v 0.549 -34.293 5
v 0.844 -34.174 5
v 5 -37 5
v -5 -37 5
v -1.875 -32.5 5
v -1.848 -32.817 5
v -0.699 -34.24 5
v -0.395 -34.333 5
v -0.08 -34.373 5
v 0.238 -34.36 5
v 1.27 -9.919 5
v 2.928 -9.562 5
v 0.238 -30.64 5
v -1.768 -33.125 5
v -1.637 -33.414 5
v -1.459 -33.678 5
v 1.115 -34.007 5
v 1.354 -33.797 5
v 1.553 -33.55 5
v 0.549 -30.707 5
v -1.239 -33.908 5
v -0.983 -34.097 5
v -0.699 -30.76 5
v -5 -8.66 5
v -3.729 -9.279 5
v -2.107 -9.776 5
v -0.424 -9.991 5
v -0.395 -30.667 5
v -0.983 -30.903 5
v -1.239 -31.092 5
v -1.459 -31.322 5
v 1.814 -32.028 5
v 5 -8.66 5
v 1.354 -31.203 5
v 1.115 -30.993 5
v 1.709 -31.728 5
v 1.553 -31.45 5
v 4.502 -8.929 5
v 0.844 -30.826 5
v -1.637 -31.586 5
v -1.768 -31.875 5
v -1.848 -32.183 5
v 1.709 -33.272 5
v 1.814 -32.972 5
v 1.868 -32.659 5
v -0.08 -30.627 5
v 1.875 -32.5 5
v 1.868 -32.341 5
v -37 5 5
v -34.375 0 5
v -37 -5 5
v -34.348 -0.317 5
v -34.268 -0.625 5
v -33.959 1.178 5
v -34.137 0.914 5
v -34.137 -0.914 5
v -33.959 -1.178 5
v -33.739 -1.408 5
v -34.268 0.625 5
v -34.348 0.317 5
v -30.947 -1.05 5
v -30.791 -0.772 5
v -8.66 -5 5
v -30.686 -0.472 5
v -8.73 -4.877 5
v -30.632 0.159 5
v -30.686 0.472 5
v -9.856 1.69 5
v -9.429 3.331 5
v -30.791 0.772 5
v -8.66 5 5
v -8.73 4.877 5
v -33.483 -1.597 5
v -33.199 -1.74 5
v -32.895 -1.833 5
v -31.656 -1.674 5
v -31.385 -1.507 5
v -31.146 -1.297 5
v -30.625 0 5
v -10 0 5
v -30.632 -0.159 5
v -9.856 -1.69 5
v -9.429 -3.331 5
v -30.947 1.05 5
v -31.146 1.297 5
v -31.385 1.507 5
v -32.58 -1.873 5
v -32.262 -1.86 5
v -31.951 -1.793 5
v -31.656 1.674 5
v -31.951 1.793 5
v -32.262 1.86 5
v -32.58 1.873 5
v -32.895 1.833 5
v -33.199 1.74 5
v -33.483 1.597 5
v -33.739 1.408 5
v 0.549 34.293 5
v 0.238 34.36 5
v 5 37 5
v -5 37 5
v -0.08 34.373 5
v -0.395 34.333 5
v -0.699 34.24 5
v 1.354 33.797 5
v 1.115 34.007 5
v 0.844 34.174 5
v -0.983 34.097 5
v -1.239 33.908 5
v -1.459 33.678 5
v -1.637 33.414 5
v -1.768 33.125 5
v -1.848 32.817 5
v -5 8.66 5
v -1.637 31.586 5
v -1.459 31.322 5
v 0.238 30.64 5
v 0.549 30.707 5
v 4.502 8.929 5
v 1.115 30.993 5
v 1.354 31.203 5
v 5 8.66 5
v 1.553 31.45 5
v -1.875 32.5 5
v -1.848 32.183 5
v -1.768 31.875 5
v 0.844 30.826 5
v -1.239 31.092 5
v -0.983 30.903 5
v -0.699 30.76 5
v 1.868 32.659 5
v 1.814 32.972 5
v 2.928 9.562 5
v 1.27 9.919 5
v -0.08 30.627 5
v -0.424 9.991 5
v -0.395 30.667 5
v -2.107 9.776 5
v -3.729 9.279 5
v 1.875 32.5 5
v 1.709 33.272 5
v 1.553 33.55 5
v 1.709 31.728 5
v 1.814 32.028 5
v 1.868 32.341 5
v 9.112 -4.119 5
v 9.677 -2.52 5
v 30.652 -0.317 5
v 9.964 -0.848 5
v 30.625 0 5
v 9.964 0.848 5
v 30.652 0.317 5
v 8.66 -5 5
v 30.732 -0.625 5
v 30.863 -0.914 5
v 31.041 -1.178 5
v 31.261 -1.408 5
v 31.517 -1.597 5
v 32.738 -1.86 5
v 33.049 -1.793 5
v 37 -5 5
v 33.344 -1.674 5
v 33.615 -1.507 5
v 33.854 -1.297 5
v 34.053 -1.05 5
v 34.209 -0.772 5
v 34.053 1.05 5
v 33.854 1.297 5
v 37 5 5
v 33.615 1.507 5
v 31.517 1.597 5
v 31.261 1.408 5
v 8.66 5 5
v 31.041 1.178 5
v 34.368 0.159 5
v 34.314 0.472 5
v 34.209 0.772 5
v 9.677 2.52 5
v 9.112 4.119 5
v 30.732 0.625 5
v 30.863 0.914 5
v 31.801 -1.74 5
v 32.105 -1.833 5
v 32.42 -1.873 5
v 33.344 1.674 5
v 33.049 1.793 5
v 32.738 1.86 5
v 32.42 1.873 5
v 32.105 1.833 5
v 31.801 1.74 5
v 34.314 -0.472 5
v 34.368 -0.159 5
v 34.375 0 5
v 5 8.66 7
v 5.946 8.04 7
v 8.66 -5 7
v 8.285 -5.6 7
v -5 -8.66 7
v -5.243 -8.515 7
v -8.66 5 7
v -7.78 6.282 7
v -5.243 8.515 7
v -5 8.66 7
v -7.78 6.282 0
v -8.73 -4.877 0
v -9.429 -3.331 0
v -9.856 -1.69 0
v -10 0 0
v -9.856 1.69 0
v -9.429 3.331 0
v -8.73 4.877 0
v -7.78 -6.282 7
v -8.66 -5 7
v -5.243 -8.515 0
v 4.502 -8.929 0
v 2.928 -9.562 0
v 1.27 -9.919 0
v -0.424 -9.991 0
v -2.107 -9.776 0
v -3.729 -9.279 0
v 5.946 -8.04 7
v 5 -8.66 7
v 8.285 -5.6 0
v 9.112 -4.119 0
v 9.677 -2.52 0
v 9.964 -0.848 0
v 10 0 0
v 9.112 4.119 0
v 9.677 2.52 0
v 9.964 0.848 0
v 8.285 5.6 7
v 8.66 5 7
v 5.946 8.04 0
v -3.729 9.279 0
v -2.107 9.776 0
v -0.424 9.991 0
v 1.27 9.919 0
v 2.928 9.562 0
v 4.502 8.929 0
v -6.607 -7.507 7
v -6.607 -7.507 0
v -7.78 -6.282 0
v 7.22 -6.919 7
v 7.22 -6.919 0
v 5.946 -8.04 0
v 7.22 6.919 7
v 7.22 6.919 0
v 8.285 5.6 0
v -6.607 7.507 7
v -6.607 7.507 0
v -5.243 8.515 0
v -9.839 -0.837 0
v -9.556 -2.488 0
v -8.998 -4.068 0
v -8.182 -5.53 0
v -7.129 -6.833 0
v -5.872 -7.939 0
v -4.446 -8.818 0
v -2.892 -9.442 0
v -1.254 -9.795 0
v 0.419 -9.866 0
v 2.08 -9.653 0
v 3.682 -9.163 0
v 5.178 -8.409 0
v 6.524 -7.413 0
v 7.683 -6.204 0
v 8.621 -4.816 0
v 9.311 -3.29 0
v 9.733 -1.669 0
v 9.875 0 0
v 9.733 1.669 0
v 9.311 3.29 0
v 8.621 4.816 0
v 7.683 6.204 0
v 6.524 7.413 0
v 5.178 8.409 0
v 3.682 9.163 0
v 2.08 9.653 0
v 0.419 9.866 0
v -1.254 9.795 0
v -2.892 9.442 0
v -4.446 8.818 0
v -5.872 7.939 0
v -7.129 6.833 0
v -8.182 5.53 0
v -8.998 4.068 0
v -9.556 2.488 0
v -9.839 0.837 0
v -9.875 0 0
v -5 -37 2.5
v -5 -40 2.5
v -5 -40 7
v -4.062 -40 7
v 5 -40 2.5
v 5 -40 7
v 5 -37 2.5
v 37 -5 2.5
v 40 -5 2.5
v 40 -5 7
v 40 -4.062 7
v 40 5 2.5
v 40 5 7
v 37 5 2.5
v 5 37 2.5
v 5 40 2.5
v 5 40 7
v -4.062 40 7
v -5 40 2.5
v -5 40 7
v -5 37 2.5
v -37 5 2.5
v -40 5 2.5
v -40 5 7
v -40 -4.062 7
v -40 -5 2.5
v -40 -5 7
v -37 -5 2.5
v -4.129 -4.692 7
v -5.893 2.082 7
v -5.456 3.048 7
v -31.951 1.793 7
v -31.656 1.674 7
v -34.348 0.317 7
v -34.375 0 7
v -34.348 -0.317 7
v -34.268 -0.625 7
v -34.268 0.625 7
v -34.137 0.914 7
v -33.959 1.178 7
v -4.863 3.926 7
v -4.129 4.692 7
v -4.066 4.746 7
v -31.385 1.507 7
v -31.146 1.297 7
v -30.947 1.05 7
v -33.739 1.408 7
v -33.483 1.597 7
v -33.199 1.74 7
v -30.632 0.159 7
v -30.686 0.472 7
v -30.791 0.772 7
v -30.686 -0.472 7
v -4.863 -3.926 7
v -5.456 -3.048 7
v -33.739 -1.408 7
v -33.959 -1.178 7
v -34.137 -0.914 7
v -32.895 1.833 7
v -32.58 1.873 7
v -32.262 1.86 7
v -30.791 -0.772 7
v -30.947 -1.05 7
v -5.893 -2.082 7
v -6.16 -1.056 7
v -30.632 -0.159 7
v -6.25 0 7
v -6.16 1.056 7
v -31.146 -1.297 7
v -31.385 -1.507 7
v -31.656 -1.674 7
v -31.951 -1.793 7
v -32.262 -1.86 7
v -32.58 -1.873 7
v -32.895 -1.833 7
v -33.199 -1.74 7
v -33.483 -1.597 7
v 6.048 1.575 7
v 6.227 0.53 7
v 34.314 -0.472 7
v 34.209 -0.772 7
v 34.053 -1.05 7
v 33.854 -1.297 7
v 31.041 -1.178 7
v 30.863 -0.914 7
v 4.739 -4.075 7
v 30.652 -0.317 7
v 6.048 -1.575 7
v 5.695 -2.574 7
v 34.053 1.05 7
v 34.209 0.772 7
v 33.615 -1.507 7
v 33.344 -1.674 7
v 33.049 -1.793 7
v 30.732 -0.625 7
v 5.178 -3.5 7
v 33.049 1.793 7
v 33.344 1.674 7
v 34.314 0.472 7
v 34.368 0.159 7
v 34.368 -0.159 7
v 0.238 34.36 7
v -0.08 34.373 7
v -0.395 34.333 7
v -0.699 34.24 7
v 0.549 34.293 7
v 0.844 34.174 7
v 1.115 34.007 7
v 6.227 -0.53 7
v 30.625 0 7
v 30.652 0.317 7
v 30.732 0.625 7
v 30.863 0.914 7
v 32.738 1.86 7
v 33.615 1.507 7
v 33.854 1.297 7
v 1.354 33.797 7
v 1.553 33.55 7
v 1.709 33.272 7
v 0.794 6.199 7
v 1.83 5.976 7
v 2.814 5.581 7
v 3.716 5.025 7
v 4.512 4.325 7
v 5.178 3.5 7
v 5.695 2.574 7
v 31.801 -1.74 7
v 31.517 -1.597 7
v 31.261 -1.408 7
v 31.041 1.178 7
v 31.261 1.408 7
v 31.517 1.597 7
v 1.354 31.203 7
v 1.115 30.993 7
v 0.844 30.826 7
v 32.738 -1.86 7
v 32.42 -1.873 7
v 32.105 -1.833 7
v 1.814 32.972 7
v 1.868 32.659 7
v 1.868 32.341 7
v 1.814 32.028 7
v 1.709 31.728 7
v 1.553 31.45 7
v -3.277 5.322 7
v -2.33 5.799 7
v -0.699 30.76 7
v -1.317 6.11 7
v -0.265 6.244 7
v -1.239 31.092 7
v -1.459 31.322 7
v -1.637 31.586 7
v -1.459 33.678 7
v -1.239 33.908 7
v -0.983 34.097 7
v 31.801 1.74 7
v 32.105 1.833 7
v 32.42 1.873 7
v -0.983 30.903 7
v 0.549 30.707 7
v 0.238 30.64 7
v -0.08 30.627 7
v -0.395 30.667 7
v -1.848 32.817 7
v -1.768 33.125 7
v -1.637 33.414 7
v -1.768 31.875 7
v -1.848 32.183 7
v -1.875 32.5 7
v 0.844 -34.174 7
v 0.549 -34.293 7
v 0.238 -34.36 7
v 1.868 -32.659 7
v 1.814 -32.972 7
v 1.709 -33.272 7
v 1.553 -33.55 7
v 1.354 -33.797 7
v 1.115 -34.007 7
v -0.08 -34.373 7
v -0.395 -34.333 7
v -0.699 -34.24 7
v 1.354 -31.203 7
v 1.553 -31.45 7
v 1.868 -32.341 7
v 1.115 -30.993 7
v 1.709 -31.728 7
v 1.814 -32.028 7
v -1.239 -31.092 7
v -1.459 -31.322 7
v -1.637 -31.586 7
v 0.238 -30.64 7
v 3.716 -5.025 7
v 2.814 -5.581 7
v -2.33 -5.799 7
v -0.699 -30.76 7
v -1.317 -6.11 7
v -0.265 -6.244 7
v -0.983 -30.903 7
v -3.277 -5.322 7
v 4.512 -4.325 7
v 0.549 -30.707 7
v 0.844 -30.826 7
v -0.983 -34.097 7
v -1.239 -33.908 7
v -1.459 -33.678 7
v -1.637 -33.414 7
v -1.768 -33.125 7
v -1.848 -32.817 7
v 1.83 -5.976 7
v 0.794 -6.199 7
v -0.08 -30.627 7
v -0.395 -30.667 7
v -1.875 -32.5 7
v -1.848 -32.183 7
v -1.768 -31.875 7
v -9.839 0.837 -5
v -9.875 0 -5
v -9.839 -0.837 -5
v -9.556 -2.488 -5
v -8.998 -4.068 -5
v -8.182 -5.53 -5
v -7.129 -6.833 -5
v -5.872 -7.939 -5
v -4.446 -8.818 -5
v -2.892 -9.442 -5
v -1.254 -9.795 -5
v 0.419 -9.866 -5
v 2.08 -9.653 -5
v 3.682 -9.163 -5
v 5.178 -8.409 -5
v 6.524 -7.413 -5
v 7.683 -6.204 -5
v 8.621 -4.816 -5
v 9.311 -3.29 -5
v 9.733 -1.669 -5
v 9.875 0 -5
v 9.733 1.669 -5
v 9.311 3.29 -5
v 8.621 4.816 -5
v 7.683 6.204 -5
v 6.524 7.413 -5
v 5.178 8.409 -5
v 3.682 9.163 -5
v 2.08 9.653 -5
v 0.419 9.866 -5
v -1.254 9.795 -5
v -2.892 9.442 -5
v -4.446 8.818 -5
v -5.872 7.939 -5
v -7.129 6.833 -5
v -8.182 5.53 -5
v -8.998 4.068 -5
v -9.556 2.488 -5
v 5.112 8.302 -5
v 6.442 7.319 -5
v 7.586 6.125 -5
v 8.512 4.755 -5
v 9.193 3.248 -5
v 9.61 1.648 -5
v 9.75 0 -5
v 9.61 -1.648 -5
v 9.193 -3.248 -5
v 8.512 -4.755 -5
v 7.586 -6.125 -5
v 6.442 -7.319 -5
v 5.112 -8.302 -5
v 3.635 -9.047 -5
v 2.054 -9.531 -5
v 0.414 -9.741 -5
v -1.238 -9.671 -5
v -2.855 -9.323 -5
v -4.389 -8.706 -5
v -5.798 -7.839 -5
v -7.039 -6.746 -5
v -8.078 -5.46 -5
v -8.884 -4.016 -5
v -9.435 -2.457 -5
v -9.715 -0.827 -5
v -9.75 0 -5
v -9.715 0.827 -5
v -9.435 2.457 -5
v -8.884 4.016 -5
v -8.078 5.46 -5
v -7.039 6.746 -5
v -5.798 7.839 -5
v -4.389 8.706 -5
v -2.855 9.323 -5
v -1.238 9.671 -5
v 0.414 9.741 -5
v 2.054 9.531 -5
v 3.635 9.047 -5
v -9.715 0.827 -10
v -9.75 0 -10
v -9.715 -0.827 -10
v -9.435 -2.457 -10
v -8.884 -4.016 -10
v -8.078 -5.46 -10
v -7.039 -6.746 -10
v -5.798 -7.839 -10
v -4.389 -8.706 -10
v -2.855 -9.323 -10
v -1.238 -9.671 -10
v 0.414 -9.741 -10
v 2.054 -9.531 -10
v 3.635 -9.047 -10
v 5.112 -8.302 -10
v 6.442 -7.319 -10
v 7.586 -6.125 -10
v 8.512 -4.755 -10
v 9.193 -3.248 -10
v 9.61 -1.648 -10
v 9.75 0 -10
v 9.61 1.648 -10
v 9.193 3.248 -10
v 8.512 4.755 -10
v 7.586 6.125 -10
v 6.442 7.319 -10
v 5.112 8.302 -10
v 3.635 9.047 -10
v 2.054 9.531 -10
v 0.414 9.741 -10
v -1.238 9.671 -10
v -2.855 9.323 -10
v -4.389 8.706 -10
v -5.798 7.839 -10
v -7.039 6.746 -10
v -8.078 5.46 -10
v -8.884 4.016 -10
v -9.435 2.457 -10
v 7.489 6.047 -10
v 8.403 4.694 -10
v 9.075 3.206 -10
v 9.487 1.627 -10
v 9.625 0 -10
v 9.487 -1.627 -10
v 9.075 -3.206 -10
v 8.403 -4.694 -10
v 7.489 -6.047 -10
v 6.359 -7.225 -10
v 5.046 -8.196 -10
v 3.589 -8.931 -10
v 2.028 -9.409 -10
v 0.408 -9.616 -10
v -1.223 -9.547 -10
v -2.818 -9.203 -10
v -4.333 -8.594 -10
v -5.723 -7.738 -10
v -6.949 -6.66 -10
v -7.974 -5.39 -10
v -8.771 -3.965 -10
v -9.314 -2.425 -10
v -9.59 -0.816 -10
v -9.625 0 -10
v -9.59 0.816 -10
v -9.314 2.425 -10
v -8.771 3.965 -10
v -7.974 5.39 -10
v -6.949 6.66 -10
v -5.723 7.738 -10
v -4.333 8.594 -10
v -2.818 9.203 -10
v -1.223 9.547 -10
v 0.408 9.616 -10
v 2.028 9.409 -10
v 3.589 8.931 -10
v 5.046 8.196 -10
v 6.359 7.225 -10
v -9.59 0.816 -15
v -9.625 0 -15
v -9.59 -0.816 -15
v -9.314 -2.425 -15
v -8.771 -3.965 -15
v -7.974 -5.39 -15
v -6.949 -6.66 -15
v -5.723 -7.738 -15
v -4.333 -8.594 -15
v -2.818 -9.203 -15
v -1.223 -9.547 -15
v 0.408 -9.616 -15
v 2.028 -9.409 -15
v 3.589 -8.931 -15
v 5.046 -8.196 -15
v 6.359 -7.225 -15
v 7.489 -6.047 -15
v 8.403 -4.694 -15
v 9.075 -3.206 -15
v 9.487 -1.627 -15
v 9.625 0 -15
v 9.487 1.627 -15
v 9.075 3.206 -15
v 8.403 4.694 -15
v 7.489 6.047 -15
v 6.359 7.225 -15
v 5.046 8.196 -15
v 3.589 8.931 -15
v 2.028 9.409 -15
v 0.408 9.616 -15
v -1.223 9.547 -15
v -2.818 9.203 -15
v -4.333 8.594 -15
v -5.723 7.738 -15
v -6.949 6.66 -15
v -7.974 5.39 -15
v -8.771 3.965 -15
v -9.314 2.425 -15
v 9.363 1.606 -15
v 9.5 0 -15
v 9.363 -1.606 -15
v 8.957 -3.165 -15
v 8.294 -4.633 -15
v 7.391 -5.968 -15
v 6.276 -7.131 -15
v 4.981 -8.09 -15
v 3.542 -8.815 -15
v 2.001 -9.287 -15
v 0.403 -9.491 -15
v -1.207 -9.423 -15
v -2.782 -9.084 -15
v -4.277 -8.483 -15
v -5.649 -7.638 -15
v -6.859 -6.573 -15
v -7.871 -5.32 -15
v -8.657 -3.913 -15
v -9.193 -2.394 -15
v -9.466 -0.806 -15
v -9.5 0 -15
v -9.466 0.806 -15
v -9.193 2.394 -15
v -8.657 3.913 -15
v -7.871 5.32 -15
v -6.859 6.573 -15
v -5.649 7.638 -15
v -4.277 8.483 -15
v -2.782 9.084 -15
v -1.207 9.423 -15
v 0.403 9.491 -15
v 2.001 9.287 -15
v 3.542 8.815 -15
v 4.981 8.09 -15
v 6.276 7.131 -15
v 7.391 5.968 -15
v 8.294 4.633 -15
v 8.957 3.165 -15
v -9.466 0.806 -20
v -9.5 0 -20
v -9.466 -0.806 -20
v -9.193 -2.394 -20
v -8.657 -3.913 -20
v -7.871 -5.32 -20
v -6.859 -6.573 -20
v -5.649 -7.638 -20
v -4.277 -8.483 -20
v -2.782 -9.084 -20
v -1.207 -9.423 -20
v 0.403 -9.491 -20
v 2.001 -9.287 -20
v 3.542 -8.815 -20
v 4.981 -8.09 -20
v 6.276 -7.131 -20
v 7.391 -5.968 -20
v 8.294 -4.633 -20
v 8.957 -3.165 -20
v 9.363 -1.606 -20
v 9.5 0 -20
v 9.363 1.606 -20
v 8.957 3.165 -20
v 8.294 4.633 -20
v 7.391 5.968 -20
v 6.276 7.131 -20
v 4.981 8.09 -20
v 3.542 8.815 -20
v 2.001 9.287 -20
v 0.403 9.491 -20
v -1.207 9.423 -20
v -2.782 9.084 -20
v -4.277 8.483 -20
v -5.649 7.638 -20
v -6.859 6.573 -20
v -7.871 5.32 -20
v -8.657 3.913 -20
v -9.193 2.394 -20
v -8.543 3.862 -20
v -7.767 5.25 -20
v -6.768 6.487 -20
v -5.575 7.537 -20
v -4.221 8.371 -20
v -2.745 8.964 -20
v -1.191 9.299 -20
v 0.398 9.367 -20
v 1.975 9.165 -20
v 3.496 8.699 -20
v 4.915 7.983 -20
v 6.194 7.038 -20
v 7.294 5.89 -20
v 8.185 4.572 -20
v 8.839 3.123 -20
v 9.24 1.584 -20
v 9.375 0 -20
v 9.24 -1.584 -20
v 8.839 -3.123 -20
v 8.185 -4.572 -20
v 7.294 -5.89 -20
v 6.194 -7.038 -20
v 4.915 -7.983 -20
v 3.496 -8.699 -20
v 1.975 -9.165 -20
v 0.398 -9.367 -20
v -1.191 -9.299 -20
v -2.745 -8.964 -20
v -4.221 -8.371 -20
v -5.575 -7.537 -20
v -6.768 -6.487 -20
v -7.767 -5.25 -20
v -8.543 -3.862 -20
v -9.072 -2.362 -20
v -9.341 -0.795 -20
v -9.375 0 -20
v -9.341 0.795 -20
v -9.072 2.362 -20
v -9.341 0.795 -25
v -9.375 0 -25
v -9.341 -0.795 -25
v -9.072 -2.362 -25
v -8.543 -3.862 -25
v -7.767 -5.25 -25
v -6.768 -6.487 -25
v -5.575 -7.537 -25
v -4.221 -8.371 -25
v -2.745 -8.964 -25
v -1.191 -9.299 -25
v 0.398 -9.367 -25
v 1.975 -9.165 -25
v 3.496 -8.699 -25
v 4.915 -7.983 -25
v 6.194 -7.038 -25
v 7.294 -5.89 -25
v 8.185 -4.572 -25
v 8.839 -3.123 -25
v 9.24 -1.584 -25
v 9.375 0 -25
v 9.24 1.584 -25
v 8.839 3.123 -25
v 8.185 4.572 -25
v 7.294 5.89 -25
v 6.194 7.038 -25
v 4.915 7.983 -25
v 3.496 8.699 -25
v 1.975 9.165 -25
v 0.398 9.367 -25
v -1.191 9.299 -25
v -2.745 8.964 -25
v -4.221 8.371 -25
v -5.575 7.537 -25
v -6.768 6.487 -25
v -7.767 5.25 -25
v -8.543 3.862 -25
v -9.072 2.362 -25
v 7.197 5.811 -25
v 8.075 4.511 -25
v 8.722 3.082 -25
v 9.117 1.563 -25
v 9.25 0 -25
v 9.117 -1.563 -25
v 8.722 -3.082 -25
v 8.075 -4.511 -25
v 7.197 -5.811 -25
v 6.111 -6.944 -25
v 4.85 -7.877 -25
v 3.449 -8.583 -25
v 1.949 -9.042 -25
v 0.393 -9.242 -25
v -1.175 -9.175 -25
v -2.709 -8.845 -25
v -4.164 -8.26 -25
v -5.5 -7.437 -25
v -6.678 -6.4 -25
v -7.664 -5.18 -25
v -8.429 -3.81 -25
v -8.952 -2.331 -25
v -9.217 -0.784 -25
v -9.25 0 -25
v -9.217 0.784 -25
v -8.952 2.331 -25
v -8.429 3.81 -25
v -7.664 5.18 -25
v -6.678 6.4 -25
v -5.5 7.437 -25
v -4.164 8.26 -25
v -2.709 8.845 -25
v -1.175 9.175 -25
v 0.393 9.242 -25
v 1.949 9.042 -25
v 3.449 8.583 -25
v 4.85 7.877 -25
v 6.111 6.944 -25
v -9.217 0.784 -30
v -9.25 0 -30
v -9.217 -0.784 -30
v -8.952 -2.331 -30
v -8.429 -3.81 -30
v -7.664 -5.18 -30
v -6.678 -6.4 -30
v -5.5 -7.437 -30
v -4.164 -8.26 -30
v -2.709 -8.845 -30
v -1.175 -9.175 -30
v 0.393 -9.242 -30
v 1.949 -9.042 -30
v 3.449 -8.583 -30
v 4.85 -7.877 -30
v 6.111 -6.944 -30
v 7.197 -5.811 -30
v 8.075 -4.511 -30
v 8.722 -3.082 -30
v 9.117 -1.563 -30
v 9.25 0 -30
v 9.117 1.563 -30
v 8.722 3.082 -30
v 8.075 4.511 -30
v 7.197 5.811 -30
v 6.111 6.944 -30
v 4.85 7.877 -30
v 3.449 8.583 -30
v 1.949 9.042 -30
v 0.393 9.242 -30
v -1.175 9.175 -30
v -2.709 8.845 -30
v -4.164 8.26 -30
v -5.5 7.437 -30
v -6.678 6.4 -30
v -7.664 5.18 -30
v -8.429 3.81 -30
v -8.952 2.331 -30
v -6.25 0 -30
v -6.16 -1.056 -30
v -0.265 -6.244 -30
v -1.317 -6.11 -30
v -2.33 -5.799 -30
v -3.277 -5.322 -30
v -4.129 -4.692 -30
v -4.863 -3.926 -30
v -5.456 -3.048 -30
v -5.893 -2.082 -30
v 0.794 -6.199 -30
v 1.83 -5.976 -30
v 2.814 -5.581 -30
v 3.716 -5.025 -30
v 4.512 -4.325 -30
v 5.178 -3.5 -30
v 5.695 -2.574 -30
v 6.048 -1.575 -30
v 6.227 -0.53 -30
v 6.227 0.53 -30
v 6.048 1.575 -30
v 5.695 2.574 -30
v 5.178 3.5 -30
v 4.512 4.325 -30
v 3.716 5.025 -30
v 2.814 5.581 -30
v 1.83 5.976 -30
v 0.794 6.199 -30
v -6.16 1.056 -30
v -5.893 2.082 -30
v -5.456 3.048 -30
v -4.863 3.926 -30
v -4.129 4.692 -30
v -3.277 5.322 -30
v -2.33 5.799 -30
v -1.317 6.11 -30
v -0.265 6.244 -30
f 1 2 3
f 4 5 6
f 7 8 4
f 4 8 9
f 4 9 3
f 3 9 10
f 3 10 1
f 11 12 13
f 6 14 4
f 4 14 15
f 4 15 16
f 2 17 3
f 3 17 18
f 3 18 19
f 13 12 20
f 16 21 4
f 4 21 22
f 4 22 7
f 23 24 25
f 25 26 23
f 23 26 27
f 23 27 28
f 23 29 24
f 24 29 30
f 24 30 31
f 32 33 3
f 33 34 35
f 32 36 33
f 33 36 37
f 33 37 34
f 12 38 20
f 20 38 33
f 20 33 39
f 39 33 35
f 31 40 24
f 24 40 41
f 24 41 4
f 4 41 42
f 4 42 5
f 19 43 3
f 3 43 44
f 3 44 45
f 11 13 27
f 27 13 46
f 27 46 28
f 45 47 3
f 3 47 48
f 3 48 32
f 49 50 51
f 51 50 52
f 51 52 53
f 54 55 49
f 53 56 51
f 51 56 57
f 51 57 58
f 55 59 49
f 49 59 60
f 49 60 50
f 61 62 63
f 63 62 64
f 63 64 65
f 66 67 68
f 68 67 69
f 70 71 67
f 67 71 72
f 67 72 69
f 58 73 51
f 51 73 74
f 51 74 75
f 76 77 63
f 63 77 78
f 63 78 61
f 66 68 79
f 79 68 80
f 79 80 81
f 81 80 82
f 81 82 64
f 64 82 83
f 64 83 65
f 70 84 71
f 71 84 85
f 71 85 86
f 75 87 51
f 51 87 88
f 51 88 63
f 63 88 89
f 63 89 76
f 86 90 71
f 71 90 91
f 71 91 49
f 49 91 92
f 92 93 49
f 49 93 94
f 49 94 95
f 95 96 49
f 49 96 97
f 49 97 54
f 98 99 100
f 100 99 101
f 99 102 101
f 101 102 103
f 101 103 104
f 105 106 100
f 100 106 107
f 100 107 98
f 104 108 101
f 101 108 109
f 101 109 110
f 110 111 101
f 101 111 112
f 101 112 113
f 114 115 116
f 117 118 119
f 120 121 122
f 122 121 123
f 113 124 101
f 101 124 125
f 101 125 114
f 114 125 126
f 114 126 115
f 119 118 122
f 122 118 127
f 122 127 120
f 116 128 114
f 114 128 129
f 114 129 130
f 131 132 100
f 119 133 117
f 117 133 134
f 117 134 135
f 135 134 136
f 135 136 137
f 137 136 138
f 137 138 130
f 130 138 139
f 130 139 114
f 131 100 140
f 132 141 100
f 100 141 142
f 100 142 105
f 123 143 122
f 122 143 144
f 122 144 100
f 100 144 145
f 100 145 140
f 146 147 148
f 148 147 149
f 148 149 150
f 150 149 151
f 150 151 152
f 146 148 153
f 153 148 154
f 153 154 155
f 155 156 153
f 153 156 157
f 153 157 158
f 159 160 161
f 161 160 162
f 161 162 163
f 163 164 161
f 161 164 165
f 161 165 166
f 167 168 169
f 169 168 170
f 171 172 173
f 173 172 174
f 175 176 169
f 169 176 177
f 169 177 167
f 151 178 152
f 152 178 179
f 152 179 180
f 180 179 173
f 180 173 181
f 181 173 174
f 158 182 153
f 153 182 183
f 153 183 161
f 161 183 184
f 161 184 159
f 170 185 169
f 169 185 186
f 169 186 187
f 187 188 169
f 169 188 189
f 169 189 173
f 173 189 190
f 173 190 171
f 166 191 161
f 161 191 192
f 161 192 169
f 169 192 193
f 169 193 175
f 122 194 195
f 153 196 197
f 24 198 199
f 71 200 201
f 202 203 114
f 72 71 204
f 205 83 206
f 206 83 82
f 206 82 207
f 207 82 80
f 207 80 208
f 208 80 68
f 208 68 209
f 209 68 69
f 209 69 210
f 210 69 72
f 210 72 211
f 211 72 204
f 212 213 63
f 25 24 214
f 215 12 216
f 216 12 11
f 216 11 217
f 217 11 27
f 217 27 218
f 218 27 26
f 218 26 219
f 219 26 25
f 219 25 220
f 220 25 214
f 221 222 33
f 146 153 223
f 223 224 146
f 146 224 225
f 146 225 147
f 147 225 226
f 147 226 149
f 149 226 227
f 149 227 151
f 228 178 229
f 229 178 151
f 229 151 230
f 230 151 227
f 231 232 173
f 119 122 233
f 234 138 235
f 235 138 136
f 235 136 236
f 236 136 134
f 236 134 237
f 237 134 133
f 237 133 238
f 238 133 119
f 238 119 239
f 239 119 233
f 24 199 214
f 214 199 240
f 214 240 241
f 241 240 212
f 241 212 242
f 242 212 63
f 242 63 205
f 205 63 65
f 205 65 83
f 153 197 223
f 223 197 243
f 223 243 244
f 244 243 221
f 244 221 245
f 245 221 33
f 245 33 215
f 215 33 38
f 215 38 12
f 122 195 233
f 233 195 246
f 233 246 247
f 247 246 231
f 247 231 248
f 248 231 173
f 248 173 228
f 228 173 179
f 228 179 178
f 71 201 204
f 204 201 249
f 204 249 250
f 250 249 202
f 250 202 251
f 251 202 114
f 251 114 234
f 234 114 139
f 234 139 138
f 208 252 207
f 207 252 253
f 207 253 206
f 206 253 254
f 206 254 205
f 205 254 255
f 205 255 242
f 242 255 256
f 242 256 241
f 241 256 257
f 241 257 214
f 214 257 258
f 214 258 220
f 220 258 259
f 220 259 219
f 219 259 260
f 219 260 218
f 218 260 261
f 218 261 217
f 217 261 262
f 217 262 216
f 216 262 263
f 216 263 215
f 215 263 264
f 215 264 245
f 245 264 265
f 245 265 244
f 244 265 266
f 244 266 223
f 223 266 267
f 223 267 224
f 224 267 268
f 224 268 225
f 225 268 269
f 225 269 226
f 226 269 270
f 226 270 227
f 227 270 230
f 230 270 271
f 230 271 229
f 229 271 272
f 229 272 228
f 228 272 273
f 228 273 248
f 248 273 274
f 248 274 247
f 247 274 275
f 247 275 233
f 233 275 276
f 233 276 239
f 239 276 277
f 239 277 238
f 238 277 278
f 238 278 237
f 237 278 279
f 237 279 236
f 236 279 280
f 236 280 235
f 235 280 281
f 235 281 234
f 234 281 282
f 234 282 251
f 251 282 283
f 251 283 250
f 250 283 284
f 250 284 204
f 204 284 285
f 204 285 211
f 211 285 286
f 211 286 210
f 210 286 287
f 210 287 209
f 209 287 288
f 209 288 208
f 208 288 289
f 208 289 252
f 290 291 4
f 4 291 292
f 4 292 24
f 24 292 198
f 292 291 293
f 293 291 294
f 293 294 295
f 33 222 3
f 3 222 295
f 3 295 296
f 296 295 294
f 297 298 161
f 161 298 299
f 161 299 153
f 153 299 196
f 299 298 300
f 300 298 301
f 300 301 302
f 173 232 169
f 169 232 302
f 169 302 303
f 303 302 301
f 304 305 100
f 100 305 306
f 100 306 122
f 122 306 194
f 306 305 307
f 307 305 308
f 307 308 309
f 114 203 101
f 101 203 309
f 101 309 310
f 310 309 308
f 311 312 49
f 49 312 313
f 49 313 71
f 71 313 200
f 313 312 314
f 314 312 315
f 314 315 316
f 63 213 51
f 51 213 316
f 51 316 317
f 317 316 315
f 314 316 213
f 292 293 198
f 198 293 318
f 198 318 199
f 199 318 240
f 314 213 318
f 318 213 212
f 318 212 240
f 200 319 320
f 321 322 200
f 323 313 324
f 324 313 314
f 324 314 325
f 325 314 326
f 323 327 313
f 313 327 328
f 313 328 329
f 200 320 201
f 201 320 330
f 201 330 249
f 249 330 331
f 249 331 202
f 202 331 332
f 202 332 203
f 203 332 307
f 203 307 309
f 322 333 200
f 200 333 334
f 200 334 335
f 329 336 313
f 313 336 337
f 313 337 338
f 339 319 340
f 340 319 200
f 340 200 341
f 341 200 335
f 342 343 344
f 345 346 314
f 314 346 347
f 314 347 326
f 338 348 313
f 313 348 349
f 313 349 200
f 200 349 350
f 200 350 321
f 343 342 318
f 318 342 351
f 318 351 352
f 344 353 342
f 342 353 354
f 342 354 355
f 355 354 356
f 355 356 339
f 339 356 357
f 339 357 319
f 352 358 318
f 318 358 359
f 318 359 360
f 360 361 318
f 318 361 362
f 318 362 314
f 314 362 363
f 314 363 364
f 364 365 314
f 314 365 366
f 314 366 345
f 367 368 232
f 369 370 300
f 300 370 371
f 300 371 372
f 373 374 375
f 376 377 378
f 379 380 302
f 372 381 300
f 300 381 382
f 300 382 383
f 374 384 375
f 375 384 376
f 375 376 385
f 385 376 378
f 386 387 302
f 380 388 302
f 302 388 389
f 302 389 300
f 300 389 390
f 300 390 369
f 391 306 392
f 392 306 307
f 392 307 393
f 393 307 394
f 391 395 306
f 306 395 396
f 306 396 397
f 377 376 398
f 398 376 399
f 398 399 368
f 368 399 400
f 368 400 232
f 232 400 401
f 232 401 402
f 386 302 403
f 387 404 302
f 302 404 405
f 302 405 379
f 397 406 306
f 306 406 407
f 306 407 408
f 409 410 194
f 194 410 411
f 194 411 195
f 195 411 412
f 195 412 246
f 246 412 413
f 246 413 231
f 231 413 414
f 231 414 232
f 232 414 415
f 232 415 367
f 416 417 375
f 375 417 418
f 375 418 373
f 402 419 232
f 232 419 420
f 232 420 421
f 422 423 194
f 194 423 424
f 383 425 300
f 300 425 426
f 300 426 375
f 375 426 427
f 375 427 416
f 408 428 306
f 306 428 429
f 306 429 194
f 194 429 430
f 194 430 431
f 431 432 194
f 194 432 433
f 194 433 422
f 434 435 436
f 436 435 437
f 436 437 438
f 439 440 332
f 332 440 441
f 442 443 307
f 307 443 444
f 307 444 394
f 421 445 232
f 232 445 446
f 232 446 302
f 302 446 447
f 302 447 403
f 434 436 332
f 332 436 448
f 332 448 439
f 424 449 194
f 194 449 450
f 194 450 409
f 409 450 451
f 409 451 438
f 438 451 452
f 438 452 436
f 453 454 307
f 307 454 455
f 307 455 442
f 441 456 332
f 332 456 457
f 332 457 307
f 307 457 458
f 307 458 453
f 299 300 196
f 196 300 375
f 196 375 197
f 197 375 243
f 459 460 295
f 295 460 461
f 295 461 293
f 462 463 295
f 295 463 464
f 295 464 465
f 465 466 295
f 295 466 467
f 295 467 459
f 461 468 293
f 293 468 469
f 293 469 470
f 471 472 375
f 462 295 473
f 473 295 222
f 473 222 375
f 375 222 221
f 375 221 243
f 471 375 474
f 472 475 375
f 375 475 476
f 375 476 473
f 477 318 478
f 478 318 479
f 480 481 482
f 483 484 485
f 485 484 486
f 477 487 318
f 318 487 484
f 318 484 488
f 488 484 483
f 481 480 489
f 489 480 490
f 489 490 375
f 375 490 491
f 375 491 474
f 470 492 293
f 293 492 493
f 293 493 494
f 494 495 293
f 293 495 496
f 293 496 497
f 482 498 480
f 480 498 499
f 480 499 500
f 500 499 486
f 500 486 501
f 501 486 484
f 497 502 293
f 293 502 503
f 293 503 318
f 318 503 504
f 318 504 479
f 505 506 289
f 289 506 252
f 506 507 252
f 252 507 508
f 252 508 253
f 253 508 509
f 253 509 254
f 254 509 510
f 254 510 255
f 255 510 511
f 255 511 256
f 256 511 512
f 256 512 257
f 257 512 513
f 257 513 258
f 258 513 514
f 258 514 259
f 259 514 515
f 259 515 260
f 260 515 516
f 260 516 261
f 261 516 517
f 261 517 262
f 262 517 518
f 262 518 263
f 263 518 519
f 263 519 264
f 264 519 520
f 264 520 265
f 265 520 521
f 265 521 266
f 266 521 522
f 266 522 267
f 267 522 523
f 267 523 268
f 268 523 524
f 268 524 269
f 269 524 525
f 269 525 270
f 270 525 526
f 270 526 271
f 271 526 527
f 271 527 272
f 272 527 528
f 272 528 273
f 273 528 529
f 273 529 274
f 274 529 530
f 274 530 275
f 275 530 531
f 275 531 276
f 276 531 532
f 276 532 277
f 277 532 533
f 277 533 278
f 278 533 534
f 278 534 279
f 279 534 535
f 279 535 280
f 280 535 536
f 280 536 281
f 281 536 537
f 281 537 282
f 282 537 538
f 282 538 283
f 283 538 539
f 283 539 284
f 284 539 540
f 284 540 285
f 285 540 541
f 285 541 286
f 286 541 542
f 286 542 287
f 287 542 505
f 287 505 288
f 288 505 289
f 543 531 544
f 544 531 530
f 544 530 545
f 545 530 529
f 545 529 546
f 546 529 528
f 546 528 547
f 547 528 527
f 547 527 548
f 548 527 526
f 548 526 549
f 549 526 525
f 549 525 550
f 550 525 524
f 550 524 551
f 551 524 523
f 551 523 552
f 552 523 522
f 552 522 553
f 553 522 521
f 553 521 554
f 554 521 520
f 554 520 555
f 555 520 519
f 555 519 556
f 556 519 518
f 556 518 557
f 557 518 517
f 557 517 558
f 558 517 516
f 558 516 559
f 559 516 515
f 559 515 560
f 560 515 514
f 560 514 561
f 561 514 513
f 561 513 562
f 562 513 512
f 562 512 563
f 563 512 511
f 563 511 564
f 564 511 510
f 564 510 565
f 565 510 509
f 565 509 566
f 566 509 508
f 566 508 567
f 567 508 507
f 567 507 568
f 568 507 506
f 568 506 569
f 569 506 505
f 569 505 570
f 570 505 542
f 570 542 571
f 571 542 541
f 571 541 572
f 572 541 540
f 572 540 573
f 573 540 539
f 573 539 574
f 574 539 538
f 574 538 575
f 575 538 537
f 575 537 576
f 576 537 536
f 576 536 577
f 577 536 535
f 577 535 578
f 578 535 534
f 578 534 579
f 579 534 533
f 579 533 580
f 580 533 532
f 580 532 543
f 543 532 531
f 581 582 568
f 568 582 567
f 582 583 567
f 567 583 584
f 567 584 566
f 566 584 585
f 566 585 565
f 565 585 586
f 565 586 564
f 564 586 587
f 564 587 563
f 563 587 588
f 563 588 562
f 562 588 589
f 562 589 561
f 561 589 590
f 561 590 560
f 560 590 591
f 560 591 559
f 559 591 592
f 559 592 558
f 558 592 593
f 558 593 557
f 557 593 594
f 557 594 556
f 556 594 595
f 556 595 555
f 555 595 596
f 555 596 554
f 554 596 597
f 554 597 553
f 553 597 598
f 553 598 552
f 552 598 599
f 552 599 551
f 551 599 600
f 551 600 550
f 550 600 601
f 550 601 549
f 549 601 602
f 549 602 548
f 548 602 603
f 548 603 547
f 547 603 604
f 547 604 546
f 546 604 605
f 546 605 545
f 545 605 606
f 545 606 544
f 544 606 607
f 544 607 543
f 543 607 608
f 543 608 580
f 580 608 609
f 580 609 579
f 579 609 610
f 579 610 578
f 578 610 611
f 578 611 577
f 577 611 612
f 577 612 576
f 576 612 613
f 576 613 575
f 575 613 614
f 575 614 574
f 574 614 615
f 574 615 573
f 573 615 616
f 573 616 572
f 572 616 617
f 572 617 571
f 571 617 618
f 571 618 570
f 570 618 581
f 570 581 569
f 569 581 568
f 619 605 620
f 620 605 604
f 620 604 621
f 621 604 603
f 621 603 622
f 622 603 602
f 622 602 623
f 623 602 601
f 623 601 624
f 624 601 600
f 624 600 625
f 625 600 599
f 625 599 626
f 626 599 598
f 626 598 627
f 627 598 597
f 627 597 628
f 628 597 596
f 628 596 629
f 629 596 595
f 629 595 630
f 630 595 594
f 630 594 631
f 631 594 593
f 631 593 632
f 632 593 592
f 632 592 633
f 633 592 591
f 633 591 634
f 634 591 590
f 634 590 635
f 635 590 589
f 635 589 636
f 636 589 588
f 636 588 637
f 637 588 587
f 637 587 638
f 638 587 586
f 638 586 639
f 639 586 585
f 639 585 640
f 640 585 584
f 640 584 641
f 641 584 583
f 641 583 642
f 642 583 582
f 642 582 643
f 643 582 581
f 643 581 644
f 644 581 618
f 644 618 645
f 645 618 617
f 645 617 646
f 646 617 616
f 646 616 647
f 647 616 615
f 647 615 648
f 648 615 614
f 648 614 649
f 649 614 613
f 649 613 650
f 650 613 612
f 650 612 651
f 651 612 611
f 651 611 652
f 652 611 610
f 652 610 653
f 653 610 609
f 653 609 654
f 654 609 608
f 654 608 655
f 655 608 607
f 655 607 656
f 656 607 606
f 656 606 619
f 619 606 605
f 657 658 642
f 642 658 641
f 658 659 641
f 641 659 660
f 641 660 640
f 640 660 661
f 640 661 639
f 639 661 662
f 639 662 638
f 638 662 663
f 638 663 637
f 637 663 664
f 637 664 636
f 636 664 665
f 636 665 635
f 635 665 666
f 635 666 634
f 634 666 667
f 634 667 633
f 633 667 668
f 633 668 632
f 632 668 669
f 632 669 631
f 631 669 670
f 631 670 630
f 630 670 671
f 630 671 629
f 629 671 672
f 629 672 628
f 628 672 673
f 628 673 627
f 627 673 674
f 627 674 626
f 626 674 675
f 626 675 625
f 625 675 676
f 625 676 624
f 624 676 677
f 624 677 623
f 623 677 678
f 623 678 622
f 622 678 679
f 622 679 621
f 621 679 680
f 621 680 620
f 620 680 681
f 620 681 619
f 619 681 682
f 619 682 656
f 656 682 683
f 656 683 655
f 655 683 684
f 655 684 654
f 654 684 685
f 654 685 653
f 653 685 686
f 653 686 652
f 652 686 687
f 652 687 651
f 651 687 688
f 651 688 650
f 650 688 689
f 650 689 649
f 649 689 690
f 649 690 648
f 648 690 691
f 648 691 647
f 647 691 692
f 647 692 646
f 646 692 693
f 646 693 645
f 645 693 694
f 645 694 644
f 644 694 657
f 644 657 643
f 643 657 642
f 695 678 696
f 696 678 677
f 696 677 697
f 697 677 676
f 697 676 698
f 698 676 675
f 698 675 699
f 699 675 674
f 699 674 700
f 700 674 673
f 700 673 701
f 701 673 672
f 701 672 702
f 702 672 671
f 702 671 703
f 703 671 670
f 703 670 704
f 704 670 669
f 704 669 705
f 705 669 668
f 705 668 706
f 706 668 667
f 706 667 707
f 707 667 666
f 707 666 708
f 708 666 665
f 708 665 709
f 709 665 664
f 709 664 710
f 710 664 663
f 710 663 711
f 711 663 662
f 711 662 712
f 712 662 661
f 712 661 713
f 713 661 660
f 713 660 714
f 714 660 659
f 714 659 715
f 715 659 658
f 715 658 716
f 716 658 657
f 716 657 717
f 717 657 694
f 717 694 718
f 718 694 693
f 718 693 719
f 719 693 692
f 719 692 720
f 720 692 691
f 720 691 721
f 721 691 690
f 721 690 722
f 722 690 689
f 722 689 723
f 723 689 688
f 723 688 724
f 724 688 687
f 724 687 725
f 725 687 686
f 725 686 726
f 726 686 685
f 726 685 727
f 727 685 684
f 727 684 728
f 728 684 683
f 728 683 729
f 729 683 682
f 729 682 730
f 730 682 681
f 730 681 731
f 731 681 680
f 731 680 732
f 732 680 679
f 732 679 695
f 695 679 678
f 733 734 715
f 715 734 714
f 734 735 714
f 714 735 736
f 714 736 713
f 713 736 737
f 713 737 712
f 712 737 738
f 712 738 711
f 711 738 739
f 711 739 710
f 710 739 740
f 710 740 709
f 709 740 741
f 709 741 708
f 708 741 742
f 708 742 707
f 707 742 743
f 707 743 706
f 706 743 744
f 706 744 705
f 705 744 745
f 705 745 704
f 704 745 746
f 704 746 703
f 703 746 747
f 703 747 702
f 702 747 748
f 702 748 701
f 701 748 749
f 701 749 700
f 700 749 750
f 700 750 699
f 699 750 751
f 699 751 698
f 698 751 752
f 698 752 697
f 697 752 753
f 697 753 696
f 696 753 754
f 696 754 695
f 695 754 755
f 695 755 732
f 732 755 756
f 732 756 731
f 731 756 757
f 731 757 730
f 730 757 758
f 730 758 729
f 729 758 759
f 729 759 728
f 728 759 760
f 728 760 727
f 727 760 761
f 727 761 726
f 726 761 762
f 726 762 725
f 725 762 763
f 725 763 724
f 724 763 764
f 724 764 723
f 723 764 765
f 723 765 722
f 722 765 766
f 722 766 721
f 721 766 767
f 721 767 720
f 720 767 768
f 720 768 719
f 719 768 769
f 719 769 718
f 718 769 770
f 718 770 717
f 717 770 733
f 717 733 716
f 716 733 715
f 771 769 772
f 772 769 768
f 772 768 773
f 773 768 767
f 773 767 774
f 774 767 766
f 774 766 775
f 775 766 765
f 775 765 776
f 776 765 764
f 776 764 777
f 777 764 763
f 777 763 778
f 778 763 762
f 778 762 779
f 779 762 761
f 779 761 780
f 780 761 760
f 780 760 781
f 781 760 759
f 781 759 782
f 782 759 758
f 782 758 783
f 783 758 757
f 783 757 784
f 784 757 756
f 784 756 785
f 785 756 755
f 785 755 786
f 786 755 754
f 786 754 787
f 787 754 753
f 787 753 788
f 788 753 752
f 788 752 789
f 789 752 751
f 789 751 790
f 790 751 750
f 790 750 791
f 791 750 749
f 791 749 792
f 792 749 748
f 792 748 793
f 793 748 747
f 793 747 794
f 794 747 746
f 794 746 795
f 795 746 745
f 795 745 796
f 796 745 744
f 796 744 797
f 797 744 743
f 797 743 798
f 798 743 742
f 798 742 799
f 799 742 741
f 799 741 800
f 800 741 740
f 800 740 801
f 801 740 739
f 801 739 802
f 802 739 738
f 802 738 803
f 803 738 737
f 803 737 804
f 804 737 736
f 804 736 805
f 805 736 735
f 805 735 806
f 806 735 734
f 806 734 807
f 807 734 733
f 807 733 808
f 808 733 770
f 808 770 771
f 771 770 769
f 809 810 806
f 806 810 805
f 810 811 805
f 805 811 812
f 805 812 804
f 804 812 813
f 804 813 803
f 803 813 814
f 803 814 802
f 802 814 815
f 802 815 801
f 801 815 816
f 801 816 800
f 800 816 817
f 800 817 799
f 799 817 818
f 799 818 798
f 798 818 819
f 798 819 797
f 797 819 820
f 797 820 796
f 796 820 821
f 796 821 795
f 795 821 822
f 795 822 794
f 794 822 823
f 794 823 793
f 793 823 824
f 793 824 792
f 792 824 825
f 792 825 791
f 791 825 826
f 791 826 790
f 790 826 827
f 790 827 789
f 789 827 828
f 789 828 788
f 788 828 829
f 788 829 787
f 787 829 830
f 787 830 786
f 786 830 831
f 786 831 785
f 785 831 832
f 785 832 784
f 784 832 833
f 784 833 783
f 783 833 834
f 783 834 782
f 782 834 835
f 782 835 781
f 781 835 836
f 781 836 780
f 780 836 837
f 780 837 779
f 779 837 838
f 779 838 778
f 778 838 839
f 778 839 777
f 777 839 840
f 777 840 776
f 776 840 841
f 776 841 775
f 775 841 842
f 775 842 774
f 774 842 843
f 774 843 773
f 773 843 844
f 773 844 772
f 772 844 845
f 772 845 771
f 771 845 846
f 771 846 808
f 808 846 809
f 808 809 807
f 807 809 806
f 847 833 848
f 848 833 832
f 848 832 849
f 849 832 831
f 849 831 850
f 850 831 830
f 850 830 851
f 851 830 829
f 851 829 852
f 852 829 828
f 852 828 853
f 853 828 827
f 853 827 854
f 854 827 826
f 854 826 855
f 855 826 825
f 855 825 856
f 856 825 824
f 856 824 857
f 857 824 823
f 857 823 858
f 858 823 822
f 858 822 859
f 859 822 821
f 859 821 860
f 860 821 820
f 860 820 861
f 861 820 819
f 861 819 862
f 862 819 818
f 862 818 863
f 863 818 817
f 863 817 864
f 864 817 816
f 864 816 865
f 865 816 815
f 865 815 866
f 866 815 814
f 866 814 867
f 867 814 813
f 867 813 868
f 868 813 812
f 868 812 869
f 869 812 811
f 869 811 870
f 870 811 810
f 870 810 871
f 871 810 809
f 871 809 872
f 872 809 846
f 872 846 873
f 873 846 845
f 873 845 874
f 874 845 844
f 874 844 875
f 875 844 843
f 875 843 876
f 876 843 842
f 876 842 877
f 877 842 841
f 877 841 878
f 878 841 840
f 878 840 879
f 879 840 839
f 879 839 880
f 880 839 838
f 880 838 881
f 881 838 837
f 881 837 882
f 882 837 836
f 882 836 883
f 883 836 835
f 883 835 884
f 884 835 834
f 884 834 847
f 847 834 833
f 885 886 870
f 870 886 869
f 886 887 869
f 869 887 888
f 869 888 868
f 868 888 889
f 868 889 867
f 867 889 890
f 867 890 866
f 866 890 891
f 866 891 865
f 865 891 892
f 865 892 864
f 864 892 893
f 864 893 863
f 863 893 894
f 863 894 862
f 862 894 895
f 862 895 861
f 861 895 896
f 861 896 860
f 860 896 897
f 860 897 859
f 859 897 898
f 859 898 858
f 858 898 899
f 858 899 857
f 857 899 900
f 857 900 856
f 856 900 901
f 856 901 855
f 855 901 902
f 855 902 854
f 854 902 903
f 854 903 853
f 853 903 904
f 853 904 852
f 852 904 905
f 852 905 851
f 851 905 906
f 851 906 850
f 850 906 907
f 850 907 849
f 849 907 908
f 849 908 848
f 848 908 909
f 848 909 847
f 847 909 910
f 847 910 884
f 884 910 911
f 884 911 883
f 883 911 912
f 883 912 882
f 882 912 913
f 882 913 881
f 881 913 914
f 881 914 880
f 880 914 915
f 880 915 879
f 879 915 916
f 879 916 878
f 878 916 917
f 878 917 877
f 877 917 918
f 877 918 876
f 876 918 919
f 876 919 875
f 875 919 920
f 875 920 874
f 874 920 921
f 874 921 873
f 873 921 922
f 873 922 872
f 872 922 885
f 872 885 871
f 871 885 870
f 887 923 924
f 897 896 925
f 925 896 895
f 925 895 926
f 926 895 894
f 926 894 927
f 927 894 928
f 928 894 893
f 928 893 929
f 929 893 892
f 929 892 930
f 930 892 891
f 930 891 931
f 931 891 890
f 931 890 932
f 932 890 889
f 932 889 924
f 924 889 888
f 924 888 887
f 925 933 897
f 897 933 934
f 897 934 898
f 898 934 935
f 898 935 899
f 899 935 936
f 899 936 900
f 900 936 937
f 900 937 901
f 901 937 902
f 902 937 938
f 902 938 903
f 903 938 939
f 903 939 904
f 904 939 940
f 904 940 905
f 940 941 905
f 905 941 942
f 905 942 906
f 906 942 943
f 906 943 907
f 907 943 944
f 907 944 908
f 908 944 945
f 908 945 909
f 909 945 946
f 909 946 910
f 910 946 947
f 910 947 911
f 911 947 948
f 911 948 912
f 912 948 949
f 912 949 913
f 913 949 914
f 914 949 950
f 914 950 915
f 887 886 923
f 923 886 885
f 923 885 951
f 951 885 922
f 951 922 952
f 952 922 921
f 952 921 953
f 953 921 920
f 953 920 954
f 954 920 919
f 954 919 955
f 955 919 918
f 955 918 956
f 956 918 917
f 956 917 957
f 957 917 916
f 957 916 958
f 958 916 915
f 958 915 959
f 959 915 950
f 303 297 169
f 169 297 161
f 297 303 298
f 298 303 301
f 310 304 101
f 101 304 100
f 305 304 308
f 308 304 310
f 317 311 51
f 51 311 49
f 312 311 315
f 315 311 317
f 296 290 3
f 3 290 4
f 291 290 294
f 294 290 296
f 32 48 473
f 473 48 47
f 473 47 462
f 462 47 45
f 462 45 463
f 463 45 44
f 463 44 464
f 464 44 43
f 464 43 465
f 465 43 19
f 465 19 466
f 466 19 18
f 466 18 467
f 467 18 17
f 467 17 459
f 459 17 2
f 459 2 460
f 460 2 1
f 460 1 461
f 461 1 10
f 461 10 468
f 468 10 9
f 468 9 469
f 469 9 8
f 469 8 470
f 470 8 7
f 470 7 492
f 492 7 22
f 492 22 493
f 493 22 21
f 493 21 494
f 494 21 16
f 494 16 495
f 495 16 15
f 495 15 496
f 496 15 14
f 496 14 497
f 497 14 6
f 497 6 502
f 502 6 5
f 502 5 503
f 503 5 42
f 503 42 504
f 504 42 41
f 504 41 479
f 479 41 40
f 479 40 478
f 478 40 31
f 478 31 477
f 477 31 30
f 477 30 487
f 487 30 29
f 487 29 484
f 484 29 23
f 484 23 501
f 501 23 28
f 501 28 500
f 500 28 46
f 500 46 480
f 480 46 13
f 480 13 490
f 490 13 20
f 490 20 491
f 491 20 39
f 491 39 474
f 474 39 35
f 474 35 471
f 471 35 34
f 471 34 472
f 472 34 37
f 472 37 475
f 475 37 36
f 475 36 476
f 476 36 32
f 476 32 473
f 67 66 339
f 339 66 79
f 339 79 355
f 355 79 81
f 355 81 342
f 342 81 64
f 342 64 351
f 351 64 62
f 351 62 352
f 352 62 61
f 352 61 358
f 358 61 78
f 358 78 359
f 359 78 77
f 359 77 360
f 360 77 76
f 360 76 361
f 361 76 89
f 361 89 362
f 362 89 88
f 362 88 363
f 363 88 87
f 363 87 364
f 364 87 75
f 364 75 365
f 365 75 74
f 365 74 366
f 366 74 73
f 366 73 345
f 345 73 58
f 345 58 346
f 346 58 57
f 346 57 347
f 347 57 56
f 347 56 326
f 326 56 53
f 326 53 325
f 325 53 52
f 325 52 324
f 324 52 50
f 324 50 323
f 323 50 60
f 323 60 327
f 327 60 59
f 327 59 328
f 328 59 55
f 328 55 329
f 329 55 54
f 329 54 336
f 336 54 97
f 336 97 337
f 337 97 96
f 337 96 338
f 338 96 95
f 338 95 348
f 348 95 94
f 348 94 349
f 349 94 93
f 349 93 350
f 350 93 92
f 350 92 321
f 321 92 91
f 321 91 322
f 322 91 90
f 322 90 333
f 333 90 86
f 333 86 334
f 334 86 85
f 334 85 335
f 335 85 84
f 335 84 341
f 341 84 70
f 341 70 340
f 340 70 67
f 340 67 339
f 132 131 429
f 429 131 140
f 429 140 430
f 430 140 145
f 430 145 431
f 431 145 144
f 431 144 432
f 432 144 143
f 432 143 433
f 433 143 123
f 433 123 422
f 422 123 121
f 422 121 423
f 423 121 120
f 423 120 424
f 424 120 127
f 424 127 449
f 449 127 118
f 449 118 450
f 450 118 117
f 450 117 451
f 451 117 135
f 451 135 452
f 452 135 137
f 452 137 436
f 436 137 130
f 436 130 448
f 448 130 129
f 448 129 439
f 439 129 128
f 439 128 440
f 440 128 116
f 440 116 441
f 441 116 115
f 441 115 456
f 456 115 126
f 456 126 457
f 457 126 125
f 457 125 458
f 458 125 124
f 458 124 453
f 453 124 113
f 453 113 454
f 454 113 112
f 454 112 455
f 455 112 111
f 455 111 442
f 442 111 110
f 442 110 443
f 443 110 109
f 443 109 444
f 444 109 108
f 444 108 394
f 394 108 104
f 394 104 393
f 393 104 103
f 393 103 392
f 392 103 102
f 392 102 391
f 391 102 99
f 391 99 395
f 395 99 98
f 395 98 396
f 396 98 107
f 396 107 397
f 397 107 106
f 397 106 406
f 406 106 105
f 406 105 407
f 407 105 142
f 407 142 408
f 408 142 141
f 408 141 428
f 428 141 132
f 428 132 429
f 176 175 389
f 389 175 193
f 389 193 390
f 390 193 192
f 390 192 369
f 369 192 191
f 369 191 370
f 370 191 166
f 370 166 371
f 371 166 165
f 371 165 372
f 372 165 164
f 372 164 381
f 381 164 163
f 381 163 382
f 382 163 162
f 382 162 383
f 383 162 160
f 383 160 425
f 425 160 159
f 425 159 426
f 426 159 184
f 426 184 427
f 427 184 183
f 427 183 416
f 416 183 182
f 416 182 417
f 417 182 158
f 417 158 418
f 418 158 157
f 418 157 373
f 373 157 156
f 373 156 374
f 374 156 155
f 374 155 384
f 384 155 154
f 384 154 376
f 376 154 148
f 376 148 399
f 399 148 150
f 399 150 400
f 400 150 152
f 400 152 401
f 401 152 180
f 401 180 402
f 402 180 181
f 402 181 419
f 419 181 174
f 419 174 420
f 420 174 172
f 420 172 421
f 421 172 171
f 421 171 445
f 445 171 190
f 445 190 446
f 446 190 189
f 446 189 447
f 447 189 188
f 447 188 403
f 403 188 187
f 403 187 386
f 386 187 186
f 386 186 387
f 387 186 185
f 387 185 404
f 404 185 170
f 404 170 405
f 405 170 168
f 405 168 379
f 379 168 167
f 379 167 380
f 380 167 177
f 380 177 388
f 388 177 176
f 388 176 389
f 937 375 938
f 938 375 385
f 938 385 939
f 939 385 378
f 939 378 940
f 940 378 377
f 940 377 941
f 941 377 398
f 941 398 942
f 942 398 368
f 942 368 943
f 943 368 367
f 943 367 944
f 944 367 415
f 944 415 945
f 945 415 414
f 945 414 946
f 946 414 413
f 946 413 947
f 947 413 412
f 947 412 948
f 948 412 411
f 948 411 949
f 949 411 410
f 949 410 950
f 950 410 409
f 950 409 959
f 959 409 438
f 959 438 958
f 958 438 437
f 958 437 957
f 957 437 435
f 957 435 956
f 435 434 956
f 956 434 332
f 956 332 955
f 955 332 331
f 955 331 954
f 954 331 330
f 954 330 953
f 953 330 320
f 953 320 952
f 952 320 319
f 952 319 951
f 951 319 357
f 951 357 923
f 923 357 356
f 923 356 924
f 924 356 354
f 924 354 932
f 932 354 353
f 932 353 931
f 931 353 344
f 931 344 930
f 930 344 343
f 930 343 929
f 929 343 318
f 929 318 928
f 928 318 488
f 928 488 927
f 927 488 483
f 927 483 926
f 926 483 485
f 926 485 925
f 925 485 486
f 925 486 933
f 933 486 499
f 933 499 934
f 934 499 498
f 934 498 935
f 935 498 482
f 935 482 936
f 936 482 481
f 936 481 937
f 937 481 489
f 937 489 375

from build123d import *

# Parameters (mm, degrees)
SKETCH1_R               = 10
BOSS_EXTRUDE1_DEPTH     = 5
SKETCH2_W               = 5
SKETCH2_H               = 5
BOSS_EXTRUDE2_DEPTH     = 2
SKETCH3_R               = 9.875
BOSS_EXTRUDE3_DEPTH     = 5
SKETCH4_R               = 9.75
BOSS_EXTRUDE4_DEPTH     = 5
SKETCH5_R               = 9.625
BOSS_EXTRUDE5_DEPTH     = 5
SKETCH6_R               = 9.5
BOSS_EXTRUDE6_DEPTH     = 5
SKETCH7_R               = 9.375
BOSS_EXTRUDE7_DEPTH     = 5
SKETCH8_R               = 9.25
BOSS_EXTRUDE8_DEPTH     = 5
SKETCH9_W               = 3
SKETCH9_H               = 10
SKETCH9_W_2             = 10
SKETCH9_H_2             = 3
BOSS_EXTRUDE9_DEPTH     = 2.5
CUT_EXTRUDE1_DEPTH      = 67.520673478
CUT_EXTRUDE1_DEPTH_BACK = 67.520673478
SKETCH10_R              = 1.875
CUT_EXTRUDE2_DEPTH      = 68.594378464
CUT_EXTRUDE2_DEPTH_BACK = 68.594378464
SKETCH11_R              = 6.25


with BuildPart() as part:
    # Sketch1 → Boss-Extrude1 (new body)
    with BuildSketch(Plane.XY):
        Circle(SKETCH1_R)
    extrude(amount=BOSS_EXTRUDE1_DEPTH)

    # Sketch2 → Boss-Extrude2 (add)
    with BuildSketch(Plane.XY.offset(5)):
        with BuildLine():
            ThreePointArc((-8.660254038, -5), (-10, 0), (-8.660254038, 5))
            Line((-8.660254038, 5), (-40, 5))
            Line((-40, 5), (-40, -5))
            Line((-40, -5), (-8.660254038, -5))
        make_face()
        with BuildLine():
            Line((-5, 0), (-5, 5))
            Line((-5, 5), (-8.660254038, 5))
            ThreePointArc((-8.660254038, 5), (-10, 0), (-8.660254038, -5))
            Line((-8.660254038, -5), (-5, -5))
            Line((-5, -5), (-5, 0))
        make_face()
        with BuildLine():
            Line((-5, 40), (-5, 8.660254038))
            ThreePointArc((-5, 8.660254038), (0, 10), (5, 8.660254038))
            Line((5, 8.660254038), (5, 40))
            Line((5, 40), (-5, 40))
        make_face()
        with BuildLine():
            Line((-5, 5), (0, 5))
            Line((0, 5), (5, 5))
            Line((5, 5), (5, 8.660254038))
            ThreePointArc((5, 8.660254038), (0, 10), (-5, 8.660254038))
            Line((-5, 8.660254038), (-5, 5))
        make_face()
        with BuildLine():
            Line((40, 5), (8.660254038, 5))
            ThreePointArc((8.660254038, 5), (9.659258263, 2.588190451), (10, 0))
            ThreePointArc((10, 0), (9.659258263, -2.588190451), (8.660254038, -5))
            Line((8.660254038, -5), (40, -5))
            Line((40, -5), (40, 5))
        make_face()
        with BuildLine():
            Line((8.660254038, 5), (5, 5))
            Line((5, 5), (5, 0))
            Line((5, 0), (5, -5))
            Line((5, -5), (8.660254038, -5))
            ThreePointArc((8.660254038, -5), (9.659258263, -2.588190451), (10, 0))
            ThreePointArc((10, 0), (9.659258263, 2.588190451), (8.660254038, 5))
        make_face()
        with BuildLine():
            ThreePointArc((5, -8.660254038), (0, -10), (-5, -8.660254038))
            Line((-5, -8.660254038), (-5, -40))
            Line((-5, -40), (5, -40))
            Line((5, -40), (5, -8.660254038))
        make_face()
        with BuildLine():
            Line((5, -5), (0, -5))
            Line((0, -5), (-5, -5))
            Line((-5, -5), (-5, -8.660254038))
            ThreePointArc((-5, -8.660254038), (0, -10), (5, -8.660254038))
            Line((5, -8.660254038), (5, -5))
        make_face()
        with Locations((2.5, -2.5)):
            Rectangle(SKETCH2_W, SKETCH2_H)
        with Locations((-2.5, -2.5)):
            Rectangle(SKETCH2_W, SKETCH2_H)
        with Locations((2.5, 2.5)):
            Rectangle(SKETCH2_W, SKETCH2_H)
        with Locations((-2.5, 2.5)):
            Rectangle(SKETCH2_W, SKETCH2_H)
        with BuildLine():
            Line((-8.660254038, 5), (-5, 5))
            Line((-5, 5), (-5, 8.660254038))
            ThreePointArc((-5, 8.660254038), (-7.071067812, 7.071067812), (-8.660254038, 5))
        make_face()
        with BuildLine():
            Line((5, 8.660254038), (5, 5))
            Line((5, 5), (8.660254038, 5))
            ThreePointArc((8.660254038, 5), (7.071067812, 7.071067812), (5, 8.660254038))
        make_face()
        with BuildLine():
            Line((8.660254038, -5), (5, -5))
            Line((5, -5), (5, -8.660254038))
            ThreePointArc((5, -8.660254038), (7.071067812, -7.071067812), (8.660254038, -5))
        make_face()
        with BuildLine():
            Line((-5, -5), (-8.660254038, -5))
            ThreePointArc((-8.660254038, -5), (-7.071067812, -7.071067812), (-5, -8.660254038))
            Line((-5, -8.660254038), (-5, -5))
        make_face()
    extrude(amount=BOSS_EXTRUDE2_DEPTH)

    # Sketch3 → Boss-Extrude3 (add)
    with BuildSketch(Plane(origin=(0, 0, 0), x_dir=(-1, 0, 0), z_dir=(0, 0, -1))):
        Circle(SKETCH3_R)
    extrude(amount=BOSS_EXTRUDE3_DEPTH)

    # Sketch4 → Boss-Extrude4 (add)
    with BuildSketch(Plane(origin=(0, 0, -5), x_dir=(-1, 0, 0), z_dir=(0, 0, -1))):
        Circle(SKETCH4_R)
    extrude(amount=BOSS_EXTRUDE4_DEPTH)

    # Sketch5 → Boss-Extrude5 (add)
    with BuildSketch(Plane(origin=(0, 0, -10), x_dir=(-1, 0, 0), z_dir=(0, 0, -1))):
        Circle(SKETCH5_R)
    extrude(amount=BOSS_EXTRUDE5_DEPTH)

    # Sketch6 → Boss-Extrude6 (add)
    with BuildSketch(Plane(origin=(0, 0, -15), x_dir=(-1, 0, 0), z_dir=(0, 0, -1))):
        Circle(SKETCH6_R)
    extrude(amount=BOSS_EXTRUDE6_DEPTH)

    # Sketch7 → Boss-Extrude7 (add)
    with BuildSketch(Plane(origin=(0, 0, -20), x_dir=(-1, 0, 0), z_dir=(0, 0, -1))):
        Circle(SKETCH7_R)
    extrude(amount=BOSS_EXTRUDE7_DEPTH)

    # Sketch8 → Boss-Extrude8 (add)
    with BuildSketch(Plane(origin=(0, 0, -25), x_dir=(-1, 0, 0), z_dir=(0, 0, -1))):
        Circle(SKETCH8_R)
    extrude(amount=BOSS_EXTRUDE8_DEPTH)

    # Sketch9 → Boss-Extrude9 (add)
    with BuildSketch(Plane(origin=(0, 0, 5), x_dir=(-1, 0, 0), z_dir=(0, 0, -1))):
        with Locations((-38.5, 0)):
            Rectangle(SKETCH9_W, SKETCH9_H)
        with Locations((0, 38.5)):
            Rectangle(SKETCH9_W_2, SKETCH9_H_2)
        with Locations((38.5, 0)):
            Rectangle(SKETCH9_W, SKETCH9_H)
        with Locations((0, -38.5)):
            Rectangle(SKETCH9_W_2, SKETCH9_H_2)
    extrude(amount=BOSS_EXTRUDE9_DEPTH)

    # Sketch10 → Cut-Extrude1 (cut, two sides: drawn at the far end of the back side and taken through both)
    with BuildSketch(Plane(origin=(0, 0, 5), x_dir=(-1, 0, 0), z_dir=(0, 0, -1)).offset(-CUT_EXTRUDE1_DEPTH_BACK)):
        with Locations((-32.5, 0)):
            Circle(SKETCH10_R)
        with Locations((0, 32.5)):
            Circle(SKETCH10_R)
        with Locations((32.5, 0)):
            Circle(SKETCH10_R)
        with Locations((0, -32.5)):
            Circle(SKETCH10_R)
    extrude(amount=CUT_EXTRUDE1_DEPTH + CUT_EXTRUDE1_DEPTH_BACK, mode=Mode.SUBTRACT)

    # Sketch11 → Cut-Extrude2 (cut, two sides: drawn at the far end of the back side and taken through both)
    with BuildSketch(Plane(origin=(0, 0, -30), x_dir=(-1, 0, 0), z_dir=(0, 0, -1)).offset(-CUT_EXTRUDE2_DEPTH_BACK)):
        Circle(SKETCH11_R)
    extrude(amount=CUT_EXTRUDE2_DEPTH + CUT_EXTRUDE2_DEPTH_BACK, mode=Mode.SUBTRACT)


solid = part.part
